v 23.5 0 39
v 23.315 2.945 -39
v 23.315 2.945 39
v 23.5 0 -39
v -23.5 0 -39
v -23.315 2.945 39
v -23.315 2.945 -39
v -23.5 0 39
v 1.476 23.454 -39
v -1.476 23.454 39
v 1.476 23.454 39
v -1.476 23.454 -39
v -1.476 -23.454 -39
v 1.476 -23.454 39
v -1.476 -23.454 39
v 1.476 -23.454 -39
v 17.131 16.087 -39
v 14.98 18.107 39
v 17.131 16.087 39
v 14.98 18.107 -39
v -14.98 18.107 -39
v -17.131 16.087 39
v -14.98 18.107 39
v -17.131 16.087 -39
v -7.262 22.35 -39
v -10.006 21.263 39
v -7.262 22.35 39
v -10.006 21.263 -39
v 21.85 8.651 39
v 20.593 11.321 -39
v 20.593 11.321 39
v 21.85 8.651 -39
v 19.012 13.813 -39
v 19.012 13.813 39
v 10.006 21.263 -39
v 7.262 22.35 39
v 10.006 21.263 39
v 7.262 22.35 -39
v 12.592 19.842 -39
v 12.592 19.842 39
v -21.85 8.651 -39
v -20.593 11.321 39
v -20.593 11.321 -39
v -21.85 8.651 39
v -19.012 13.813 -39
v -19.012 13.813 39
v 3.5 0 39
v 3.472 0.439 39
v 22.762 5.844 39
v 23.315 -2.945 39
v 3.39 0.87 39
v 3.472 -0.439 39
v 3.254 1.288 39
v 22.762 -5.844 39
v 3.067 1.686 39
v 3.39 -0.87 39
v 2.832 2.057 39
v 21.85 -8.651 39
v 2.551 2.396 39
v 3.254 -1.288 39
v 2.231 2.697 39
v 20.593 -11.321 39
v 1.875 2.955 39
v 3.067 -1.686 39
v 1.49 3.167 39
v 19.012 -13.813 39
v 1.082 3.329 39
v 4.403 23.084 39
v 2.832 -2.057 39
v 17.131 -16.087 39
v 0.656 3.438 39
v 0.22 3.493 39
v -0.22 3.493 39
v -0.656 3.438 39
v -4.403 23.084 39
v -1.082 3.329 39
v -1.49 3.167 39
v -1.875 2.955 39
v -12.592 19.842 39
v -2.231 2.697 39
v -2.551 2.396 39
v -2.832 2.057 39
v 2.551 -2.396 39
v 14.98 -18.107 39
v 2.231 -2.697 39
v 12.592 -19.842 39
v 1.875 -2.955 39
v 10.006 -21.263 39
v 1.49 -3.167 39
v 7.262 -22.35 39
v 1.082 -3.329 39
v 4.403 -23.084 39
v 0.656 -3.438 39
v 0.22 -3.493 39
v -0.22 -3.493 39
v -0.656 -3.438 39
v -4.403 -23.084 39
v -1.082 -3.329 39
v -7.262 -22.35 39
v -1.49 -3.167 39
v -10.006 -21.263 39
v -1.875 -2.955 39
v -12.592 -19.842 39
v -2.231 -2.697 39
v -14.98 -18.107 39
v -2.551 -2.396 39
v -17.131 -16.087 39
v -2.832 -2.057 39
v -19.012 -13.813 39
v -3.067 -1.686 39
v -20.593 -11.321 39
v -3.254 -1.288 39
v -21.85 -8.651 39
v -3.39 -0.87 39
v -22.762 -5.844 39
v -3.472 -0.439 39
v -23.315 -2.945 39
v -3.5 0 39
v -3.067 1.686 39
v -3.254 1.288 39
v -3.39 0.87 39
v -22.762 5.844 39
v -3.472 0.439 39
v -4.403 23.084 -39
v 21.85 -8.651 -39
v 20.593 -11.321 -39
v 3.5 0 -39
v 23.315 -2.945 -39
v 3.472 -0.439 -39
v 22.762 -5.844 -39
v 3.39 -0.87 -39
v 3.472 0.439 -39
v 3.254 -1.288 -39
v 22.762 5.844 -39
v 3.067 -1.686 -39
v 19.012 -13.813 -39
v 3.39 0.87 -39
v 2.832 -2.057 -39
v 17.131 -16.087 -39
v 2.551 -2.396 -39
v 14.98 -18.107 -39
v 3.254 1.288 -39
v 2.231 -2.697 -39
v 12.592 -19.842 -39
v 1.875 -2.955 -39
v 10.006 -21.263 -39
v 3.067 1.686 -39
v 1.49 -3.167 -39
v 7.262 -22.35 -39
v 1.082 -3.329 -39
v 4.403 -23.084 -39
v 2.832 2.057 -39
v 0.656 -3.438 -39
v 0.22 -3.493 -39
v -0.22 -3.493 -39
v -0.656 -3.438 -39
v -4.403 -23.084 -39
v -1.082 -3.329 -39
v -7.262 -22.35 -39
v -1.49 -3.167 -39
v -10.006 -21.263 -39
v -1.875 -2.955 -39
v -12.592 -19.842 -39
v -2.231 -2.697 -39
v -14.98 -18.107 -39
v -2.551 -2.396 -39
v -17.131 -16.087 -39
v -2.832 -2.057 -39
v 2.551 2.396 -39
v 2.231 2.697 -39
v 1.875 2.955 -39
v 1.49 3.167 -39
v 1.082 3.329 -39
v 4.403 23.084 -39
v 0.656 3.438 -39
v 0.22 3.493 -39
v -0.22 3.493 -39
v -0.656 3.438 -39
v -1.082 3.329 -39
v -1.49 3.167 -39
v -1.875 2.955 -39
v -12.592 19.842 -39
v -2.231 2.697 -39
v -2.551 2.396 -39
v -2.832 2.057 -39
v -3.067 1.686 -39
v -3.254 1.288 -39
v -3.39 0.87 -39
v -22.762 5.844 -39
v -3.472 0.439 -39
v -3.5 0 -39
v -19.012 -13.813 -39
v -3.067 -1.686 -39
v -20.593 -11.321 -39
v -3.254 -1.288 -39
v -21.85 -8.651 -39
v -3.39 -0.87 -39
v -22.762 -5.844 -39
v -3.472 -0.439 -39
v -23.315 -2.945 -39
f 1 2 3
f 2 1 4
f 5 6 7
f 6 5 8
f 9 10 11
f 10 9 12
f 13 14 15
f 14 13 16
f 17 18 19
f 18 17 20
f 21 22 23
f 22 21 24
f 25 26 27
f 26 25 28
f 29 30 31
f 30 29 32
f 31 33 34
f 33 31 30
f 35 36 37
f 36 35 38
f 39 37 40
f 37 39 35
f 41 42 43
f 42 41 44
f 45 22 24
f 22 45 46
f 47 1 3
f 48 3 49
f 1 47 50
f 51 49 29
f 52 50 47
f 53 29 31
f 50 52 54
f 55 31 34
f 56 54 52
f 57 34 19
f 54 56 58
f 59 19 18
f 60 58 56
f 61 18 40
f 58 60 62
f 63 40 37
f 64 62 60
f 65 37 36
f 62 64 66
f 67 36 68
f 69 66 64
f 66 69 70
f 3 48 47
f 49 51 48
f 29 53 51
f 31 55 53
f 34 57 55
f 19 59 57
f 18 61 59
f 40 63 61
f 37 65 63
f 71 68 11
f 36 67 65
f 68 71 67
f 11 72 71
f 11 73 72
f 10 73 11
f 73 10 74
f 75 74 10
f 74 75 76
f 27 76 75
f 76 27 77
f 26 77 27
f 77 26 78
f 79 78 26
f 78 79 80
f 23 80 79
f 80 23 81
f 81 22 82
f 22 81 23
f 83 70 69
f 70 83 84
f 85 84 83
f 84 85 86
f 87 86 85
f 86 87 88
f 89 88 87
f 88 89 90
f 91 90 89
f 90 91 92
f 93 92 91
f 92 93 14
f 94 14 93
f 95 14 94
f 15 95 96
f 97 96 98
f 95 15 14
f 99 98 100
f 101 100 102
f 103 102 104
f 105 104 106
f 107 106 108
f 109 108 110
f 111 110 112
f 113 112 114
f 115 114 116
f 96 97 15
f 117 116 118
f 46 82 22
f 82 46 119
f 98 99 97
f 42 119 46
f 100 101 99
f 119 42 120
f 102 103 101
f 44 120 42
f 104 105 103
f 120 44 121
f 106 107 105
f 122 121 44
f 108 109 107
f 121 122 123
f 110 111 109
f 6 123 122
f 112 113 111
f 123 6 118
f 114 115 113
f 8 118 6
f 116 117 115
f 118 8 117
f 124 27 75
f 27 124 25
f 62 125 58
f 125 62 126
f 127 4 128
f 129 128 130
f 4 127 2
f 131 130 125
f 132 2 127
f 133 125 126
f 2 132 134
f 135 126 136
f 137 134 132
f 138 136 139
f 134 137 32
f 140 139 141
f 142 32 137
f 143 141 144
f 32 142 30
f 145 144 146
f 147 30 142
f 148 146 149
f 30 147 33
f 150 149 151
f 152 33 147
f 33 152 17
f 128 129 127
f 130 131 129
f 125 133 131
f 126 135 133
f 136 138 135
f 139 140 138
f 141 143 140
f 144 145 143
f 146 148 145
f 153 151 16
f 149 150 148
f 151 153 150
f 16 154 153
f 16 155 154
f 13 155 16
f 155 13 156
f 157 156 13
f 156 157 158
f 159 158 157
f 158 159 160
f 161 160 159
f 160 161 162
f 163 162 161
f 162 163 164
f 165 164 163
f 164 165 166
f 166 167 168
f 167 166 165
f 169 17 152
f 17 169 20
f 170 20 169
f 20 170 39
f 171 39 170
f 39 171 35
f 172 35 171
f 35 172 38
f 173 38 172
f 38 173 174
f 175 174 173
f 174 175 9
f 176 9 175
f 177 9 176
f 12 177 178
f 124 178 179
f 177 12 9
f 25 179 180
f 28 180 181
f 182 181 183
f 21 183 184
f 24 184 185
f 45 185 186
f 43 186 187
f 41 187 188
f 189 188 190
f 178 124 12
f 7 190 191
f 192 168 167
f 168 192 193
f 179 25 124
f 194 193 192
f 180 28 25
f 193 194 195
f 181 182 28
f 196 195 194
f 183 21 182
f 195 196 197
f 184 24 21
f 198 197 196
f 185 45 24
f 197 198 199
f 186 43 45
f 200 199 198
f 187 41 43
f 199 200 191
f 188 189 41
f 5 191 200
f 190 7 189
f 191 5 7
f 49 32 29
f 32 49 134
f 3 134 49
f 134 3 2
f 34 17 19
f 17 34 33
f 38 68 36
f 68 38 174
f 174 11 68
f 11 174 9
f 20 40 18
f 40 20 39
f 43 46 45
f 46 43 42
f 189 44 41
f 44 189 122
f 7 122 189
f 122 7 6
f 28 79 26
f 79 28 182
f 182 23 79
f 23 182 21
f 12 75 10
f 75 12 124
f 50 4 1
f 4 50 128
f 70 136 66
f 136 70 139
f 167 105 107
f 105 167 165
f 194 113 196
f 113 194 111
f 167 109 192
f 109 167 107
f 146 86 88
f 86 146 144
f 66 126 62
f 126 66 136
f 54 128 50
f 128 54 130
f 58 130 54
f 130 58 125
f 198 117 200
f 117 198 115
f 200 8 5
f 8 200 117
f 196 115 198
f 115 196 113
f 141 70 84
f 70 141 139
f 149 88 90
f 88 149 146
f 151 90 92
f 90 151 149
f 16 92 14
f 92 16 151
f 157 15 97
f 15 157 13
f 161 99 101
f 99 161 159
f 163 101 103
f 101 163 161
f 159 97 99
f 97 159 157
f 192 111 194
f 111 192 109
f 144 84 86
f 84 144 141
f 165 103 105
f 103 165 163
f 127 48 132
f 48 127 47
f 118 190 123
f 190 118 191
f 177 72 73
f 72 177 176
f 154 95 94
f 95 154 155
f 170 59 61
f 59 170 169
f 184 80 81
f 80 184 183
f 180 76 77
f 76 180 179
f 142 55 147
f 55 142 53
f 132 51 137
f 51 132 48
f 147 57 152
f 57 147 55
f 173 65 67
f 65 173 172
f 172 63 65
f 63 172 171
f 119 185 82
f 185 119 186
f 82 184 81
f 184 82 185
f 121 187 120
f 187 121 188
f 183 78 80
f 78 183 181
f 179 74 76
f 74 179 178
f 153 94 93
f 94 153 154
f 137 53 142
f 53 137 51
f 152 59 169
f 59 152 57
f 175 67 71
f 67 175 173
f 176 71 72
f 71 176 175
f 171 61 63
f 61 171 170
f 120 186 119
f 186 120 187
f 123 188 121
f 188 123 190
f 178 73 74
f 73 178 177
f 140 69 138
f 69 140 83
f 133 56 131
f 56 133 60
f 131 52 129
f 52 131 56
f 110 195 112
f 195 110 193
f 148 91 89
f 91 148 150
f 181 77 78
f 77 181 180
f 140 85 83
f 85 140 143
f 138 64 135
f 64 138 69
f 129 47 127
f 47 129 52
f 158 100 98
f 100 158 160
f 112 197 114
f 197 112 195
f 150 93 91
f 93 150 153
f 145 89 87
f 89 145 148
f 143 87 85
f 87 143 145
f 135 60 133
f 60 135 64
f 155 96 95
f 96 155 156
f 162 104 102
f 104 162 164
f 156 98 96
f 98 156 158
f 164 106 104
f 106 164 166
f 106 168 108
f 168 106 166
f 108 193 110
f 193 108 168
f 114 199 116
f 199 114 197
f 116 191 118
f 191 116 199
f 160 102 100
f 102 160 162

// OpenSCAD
$fn = 50;


difference() {
	union() {
		translate(v = [0, 0, -39.0000000000]) {
			cylinder(h = 78, r = 23.5000000000);
		}
	}
	union() {
		translate(v = [0, 0, -100.0000000000]) {
			cylinder(h = 200, r = 3.5000000000);
		}
	}
}
